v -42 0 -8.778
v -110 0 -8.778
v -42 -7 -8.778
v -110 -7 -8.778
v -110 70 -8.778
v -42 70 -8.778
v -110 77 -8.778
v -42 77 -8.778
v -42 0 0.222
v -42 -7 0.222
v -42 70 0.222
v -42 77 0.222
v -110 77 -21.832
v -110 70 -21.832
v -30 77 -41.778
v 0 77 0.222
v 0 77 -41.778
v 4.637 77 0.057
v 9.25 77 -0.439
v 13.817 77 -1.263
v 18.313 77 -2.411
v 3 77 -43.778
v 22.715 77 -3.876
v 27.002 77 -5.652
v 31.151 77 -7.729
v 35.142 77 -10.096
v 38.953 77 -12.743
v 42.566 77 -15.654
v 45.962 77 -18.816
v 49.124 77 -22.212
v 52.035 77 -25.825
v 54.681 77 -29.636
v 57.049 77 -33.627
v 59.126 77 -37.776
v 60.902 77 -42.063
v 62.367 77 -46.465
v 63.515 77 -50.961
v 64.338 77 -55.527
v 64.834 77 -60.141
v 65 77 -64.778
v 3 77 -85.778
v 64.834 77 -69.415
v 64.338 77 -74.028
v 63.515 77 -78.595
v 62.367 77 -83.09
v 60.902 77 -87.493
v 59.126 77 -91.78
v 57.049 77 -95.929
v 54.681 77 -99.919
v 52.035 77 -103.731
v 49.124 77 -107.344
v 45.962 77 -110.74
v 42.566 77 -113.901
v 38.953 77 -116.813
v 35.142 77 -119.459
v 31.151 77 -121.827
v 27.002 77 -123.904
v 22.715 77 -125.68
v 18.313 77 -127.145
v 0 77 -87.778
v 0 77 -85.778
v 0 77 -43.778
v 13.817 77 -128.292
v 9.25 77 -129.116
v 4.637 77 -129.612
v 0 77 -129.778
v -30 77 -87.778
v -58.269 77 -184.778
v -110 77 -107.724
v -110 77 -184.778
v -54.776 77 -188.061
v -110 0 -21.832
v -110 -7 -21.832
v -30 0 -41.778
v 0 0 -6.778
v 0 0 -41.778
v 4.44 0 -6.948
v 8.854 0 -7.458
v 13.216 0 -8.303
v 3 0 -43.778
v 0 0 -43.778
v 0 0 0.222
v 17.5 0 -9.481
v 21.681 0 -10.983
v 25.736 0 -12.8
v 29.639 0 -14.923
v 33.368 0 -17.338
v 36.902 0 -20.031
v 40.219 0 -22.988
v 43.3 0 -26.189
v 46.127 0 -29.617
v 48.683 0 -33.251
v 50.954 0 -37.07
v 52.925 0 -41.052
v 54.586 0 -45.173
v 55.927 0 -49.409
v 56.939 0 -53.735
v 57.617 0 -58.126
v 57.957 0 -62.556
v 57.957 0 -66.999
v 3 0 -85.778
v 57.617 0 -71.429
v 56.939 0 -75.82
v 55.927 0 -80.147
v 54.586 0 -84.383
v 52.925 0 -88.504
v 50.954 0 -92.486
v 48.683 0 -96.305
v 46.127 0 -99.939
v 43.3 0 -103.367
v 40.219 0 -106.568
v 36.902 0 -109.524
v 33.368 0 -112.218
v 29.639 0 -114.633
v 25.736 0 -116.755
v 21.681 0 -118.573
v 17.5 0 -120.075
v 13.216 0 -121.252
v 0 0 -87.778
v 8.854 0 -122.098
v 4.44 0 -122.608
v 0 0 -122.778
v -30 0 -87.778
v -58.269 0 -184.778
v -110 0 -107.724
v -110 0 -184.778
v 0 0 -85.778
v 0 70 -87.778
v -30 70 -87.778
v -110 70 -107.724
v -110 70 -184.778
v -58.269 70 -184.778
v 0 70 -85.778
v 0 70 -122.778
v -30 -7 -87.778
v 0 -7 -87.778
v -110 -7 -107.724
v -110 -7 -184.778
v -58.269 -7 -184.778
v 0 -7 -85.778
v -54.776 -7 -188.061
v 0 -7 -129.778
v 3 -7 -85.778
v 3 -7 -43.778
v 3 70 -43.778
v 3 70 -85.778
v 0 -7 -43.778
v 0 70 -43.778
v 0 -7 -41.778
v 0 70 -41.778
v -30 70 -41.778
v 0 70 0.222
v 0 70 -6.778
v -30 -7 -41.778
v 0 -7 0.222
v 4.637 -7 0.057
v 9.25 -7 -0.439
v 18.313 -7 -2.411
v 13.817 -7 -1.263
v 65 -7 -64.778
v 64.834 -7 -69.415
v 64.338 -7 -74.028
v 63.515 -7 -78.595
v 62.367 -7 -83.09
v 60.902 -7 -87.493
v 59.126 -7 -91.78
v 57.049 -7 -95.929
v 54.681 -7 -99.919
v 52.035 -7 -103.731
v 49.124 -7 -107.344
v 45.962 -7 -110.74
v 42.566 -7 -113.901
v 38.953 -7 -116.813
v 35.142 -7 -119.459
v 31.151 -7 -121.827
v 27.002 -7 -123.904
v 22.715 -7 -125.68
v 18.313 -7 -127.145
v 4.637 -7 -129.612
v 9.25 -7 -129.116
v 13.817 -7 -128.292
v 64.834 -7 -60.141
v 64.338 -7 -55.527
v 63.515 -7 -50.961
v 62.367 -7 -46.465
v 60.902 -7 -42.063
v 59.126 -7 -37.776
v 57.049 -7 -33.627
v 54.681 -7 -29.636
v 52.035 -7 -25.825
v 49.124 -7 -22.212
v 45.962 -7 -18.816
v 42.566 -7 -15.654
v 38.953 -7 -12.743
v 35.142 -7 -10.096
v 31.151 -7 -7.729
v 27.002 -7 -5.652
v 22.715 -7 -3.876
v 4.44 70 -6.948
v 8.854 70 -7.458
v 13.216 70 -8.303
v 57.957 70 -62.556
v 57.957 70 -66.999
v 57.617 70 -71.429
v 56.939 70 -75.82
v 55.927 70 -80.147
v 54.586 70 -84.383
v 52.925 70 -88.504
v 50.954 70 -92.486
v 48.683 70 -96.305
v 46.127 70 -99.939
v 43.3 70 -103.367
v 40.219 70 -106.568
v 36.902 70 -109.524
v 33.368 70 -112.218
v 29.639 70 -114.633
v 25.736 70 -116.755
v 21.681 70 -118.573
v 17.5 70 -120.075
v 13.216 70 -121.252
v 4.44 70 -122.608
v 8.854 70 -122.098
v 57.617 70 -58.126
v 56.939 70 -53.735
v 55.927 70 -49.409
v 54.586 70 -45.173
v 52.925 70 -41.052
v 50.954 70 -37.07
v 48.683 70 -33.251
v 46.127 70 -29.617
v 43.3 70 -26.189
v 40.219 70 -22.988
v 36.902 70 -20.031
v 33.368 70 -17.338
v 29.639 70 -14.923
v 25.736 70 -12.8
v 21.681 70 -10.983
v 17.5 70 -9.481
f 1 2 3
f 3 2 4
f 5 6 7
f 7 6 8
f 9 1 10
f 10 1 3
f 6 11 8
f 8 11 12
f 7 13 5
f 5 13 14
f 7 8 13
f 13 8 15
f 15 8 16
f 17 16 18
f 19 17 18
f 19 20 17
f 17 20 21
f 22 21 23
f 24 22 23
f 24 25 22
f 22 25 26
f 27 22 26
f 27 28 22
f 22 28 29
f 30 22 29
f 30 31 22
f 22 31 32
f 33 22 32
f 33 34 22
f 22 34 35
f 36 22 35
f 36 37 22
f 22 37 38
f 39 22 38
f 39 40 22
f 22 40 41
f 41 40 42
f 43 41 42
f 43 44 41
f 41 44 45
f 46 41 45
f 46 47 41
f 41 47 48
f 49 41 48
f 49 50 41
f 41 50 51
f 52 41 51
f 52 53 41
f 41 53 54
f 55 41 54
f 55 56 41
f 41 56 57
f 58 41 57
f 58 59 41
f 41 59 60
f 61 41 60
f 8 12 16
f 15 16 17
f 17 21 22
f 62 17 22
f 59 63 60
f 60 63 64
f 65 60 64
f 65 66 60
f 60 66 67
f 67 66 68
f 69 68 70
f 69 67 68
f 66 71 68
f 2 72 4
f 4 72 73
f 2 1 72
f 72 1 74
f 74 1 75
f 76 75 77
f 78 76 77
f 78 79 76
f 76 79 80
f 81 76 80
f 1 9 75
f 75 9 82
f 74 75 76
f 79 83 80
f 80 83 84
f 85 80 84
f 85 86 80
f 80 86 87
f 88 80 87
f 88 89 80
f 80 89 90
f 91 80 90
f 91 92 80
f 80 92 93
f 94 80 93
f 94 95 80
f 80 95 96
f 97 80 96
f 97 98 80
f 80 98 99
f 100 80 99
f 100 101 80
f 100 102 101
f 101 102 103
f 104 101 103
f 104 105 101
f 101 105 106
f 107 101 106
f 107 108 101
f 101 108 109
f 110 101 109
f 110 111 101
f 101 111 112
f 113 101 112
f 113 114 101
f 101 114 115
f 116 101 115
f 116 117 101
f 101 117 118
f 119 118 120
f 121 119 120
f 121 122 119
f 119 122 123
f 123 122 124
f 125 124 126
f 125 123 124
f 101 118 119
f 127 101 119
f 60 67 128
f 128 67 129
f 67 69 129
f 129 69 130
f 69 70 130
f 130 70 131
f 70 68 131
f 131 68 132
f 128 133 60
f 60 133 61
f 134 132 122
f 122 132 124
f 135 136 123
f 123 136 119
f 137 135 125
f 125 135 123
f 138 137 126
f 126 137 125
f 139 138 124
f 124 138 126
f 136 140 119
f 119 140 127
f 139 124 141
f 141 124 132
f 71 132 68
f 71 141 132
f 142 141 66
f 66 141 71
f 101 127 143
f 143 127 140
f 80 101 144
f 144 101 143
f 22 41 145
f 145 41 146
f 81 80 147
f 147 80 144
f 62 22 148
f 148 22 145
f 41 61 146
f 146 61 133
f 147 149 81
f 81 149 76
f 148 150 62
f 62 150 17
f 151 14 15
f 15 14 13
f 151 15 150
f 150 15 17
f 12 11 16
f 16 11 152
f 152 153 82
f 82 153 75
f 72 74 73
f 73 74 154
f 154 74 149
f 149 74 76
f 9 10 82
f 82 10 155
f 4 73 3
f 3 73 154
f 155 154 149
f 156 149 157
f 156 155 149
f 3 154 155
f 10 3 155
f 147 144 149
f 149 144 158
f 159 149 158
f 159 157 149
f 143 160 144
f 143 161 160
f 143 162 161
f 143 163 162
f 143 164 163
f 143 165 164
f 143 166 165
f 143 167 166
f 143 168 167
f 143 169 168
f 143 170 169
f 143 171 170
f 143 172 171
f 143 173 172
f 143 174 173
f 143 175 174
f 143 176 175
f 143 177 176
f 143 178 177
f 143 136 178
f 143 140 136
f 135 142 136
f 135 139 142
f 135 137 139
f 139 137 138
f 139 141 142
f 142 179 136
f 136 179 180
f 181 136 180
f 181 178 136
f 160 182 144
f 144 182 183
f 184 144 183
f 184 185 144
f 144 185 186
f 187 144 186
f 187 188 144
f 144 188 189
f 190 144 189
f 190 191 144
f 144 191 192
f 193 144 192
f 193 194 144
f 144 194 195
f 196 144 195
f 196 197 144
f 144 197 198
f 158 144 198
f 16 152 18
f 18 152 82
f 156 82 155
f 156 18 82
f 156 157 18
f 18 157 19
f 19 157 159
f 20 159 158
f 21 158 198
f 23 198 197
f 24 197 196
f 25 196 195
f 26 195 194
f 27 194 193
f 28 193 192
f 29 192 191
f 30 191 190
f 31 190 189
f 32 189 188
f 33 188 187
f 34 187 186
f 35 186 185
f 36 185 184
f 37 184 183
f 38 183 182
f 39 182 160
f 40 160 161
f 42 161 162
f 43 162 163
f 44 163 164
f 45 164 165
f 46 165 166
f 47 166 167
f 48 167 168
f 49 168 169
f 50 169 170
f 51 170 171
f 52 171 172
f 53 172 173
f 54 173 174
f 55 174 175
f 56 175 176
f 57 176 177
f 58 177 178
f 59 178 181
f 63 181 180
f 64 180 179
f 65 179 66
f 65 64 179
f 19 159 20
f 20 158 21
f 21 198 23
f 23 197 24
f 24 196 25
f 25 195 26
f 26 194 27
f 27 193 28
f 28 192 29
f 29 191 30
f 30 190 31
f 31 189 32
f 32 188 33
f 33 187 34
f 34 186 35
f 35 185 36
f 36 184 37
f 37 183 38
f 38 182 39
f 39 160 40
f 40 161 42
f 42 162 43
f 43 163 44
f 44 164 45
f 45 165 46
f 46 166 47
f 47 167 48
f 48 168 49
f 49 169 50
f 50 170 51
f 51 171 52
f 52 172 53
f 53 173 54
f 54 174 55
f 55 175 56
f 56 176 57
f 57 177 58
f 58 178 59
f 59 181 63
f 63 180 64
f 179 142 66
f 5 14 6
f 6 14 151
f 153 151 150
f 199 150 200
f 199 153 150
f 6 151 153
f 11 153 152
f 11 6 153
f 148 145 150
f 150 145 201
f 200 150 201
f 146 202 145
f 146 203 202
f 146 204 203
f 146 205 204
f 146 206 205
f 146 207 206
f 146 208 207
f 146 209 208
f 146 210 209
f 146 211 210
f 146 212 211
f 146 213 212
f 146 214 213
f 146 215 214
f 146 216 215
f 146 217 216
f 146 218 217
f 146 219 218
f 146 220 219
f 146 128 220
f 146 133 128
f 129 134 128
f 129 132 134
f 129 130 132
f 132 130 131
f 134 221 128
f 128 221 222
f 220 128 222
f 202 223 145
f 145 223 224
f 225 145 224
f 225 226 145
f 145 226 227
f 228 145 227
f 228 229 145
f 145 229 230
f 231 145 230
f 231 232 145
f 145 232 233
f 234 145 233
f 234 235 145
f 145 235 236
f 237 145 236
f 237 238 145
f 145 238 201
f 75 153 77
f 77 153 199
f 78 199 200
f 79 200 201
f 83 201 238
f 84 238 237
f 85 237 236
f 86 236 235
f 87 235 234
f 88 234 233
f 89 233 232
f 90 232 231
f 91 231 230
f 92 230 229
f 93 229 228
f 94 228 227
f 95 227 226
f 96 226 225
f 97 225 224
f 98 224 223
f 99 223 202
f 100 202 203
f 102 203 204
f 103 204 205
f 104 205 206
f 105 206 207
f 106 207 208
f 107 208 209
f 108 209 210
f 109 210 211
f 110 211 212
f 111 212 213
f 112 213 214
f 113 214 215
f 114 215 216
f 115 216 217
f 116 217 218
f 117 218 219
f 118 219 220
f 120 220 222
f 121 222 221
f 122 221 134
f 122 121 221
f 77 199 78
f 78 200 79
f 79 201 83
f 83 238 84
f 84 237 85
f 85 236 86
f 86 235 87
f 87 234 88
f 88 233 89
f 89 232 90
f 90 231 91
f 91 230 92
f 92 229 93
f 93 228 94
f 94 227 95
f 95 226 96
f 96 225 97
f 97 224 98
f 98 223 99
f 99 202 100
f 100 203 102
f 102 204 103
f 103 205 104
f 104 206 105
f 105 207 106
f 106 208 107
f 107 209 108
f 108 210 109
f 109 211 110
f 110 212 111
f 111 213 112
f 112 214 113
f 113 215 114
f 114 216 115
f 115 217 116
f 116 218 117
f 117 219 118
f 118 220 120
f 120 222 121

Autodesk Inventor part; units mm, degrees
ref_plane "YZ Plane" through (0, 0, 0) normal (1, 0, 0) x (0, 1, 0)
ref_plane "XZ Plane" through (0, 0, 0) normal (0, 1, 0) x (-1, 0, 0)
ref_plane "XY Plane" through (0, 0, 0) normal (0, 0, 1) x (1, 0, 0)
sketch "Sketch1" plane through (0, 0, 0) normal (1, 0, 0) x (0, 1, 0)
  line L0 (0, -6.7778) -> (70, -6.7778)
  line L1 (70, -6.7778) -> (70, -64.7778)
  line L2 (0, -64.7778) -> (0, -6.7778)
  line L3 (77, -64.7778) -> (77, 0.2222)
  line L4 (77, 0.2222) -> (-7, 0.2222)
  line L5 (-7, 0.2222) -> (-7, -64.7778)
  line L6 (-7, -64.7778) -> (77, -64.7778)
  point P0 (0, 0)
  dimension "d2" = 7
  dimension "d3" = 65
  dimension "d5" = 58
  dimension "d6" = 84
revolve "Revolution1" add sketch "Sketch1" angle 180 about axis through (0, -7, -64.7778) along (0, 1, 0) contours L2 L6 L5 L4 L3 L1 L0
sketch "Sketch2" plane through (0, -7, 0.2222) normal (-1, 0, 0) x (0, 0, 1)
  line L0 (0, 0) -> (-130, 0) projected
  line L1 (0, 0) -> (-130, 0) projected
  line L2 (0, 84) -> (0, 0) projected
  line L3 (0, 84) -> (-130, 84) projected
  line L4 (-130, 84) -> (-130, 0) projected
  line L5 (-7, 7) -> (-123, 7) projected
  line L6 (-123, 7) -> (-123, 77) projected
  line L7 (-7, 77) -> (-123, 77) projected
  line L8 (-7, 7) -> (-7, 77) projected
  line L9 (0, 0) -> (-42, 0)
  line L10 (-42, 0) -> (-42, 7)
  line L11 (-42, 7) -> (0, 7)
  line L12 (0, 7) -> (0, 0)
  line L13 (0, 0) -> (0, 42)
  line L14 (0, 77) -> (0, 84)
  point P0 (-0.2222, 7)
  point P1 (-130, 84)
  dimension "d7" = 42
extrude "Extrusion1" add sketch "Sketch2" along normal blind 110 contours L0 L10 L5 L11 L2
sketch "Sketch3" plane through (-110, -7, 0.2222) normal (0, -1, 0) x (1, 0, 0)
  line L0 (110, -42) -> (110, -130) projected
  arc A0 (110, -130) -> (110, 0) centre (110, -65) ccw projected
  line L1 (110, 0) -> (0, 0) projected
  line L2 (0, -42) -> (0, 0) projected
  line L3 (110, -42) -> (0, -42) projected
  line L4 (110, 0) -> (0, 0)
  line L5 (110, 0) -> (0, 0) projected
  line L6 (110, -42) -> (80, -42)
  line L7 (110, -42) -> (0, -42) projected
  line L8 (0, -42) -> (0, 0) projected
  line L9 (80, -42) -> (0, -22.0538)
  point P0 (110, -0.2222)
  dimension "d11" = 30
  dimension "d13" = 14
extrude "Extrusion2" cut sketch "Sketch3" against normal through all contours L3 L2 L9
ref_plane "Work Plane1" through (-110, 35, 0.2222) normal (0, -1, 0) x (1, 0, 0)
mirror "Mirror1" about plane through (-110, 35, 0.2222) normal (0, -1, 0) of "Extrusion1", "Extrusion2"
sketch "Sketch4" plane through (-110, -7, 0.2222) normal (0, -1, 0) x (1, 0, 0)
  line L0 (0, -22.0538) -> (80, -42) projected
  line L1 (110, -42) -> (80, -42) projected
  line L2 (110, -42) -> (110, -130) projected
  arc A0 (110, -130) -> (110, 0) centre (110, -65) ccw projected
  line L3 (110, 0) -> (0, 0) projected
  line L4 (0, -22.0538) -> (0, 0) projected
  line L5 (110, -84) -> (110, -42)
  line L6 (113, -65) -> (113, -44)
  line L7 (113, -44) -> (110, -44)
  line L8 (110, -44) -> (110, -65)
  line L9 (110, -86) -> (110, -42)
  line L10 (113, -65) -> (113, -86)
  line L11 (113, -86) -> (110, -86)
  line L12 (110, -44) -> (110, -86)
  line L13 (110, -42) -> (110, -123) projected
  point P0 (110, -0.2222)
  point P1 (110, -88)
  dimension "d17" = 21
  dimension "d18" = 3
extrude "Extrusion3" cut sketch "Sketch4" against normal through all contours L7 L6 L10 L11 L2
sketch "Sketch5" plane through (-110, -7, 0.2222) normal (0, -1, 0) x (1, 0, 0)
  line L0 (113, -86) -> (110, -86) projected
  line L1 (110, -86) -> (110, -130) projected
  arc A0 (110, -130) -> (110, 0) centre (110, -65) ccw projected
  line L2 (110, 0) -> (0, 0) projected
  line L3 (0, -22.0538) -> (0, 0) projected
  line L4 (0, -22.0538) -> (80, -42) projected
  line L5 (110, -42) -> (80, -42) projected
  line L6 (110, -42) -> (110, -44) projected
  line L7 (110, -44) -> (113, -44) projected
  line L8 (113, -44) -> (113, -86) projected
  line L9 (110, -130) -> (55.2127, -188.2954)
  arc A1 (110, -123) -> (110, -7) centre (110, -65) ccw projected
  line L10 (110, -123) -> (51.7311, -185)
  line L11 (51.7311, -185) -> (55.2244, -188.283)
  point P0 (110, -0.2222)
  dimension "d21" = 80
extrude "Extrusion4" add sketch "Sketch5" against normal blind 84 contours L1 L9 L11 L10
sketch "Sketch6" plane through (-110, -7, 0.2222) normal (0, -1, 0) x (1, 0, 0)
  line L0 (113, -86) -> (110, -86) projected
  line L1 (110, -86) -> (110, -123) projected
  line L2 (110, -123) -> (51.7311, -185) projected
  line L3 (51.7311, -185) -> (55.2244, -188.283) projected
  line L4 (55.2244, -188.283) -> (110, -130) projected
  arc A0 (110, -130) -> (110, 0) centre (110, -65) ccw projected
  line L5 (110, 0) -> (0, 0) projected
  line L6 (0, -22.0538) -> (0, 0) projected
  line L7 (0, -22.0538) -> (80, -42) projected
  line L8 (110, -42) -> (80, -42) projected
  line L9 (110, -42) -> (110, -44) projected
  line L10 (110, -44) -> (113, -44) projected
  line L11 (113, -44) -> (113, -86) projected
  line L12 (110, -65) -> (80, -65)
  line L13 (0, -107.9462) -> (80, -88)
  line L14 (110, -88) -> (80, -88)
  line L15 (0, -107.9462) -> (0, -185)
  line L16 (0, -185) -> (51.7311, -185)
  line L17 (110, -88) -> (110, -123)
  line L18 (110, -123) -> (51.7311, -185)
  point P0 (110, -0.2222)
extrude "Extrusion5" add sketch "Sketch6" against normal blind 7 contours L1 L2 L16 L15 L13 L14
mirror "Mirror2" about plane through (-110, 35, 0.2222) normal (0, -1, 0) of "Extrusion5"
sketch "Sketch7" plane through (-110, 77, 0.2222) normal (0, 1, 0) x (1, 0, 0)
  line L0 (0, 0) -> (68, 0)
  line L1 (110, 0) -> (0, 0) projected
  line L2 (68, 0) -> (68, 9)
  line L3 (68, 9) -> (0, 9)
  line L4 (0, 9) -> (0, 0)
  point P0 (110, 0.2222)
  dimension "d26" = 68
  dimension "d27" = 9
extrude "Extrusion6" cut sketch "Sketch7" against normal blind 84
properties part number "casco-salida-0,1"
